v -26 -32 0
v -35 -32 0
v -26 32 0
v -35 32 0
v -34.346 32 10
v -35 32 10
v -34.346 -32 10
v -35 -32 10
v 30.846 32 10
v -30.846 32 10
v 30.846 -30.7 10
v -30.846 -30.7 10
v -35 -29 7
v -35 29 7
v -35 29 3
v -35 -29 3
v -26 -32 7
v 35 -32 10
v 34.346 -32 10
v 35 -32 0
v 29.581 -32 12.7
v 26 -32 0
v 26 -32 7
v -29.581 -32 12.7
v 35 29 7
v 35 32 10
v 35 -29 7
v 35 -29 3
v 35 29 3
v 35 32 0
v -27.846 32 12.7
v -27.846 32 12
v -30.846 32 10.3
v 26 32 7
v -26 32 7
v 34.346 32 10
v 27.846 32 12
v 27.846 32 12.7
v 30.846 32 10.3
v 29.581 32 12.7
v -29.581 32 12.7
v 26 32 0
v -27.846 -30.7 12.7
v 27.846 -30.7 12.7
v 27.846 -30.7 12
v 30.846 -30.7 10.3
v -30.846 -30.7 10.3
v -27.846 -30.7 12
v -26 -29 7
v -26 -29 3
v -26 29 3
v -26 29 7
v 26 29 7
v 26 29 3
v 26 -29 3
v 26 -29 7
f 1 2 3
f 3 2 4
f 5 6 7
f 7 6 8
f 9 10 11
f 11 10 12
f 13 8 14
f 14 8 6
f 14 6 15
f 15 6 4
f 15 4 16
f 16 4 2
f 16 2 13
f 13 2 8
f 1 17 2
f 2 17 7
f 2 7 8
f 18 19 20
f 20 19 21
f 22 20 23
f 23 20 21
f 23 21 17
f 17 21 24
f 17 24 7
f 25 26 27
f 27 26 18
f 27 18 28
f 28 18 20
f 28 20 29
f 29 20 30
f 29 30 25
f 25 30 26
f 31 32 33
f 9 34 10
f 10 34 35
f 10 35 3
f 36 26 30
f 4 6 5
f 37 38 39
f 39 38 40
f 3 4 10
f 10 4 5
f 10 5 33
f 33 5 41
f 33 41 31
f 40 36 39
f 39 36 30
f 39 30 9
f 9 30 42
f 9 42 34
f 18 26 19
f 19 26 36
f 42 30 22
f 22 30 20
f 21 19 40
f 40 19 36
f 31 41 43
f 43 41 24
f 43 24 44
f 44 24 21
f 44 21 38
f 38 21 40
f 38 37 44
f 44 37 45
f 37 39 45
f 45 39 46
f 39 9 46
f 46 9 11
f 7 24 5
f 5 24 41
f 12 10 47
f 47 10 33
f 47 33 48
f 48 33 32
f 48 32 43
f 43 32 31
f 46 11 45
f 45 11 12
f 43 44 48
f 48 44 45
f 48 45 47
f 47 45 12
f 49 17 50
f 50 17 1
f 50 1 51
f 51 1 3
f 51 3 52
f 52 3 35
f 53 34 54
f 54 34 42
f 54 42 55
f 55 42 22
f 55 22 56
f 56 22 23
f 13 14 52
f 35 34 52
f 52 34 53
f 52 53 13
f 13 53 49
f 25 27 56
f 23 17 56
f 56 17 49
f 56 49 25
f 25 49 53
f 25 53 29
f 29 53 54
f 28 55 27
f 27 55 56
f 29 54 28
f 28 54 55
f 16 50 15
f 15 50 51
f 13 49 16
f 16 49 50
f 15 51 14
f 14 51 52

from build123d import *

# Parameters (mm, degrees)
SKETCH1_W           = 70
SKETCH1_H           = 64
BOSS_EXTRUDE1_DEPTH = 10
BOSS_EXTRUDE2_DEPTH = 64
BOSS_EXTRUDE3_DEPTH = 1.3
SKETCH5_W           = 52
SKETCH5_H           = 7
CUT_EXTRUDE1_DEPTH  = 75.042487803
SKETCH6_W           = 4
SKETCH6_H           = 58
CUT_EXTRUDE2_DEPTH  = 79.008268792


with BuildPart() as part:
    # Sketch1 → Boss-Extrude1 (new body)
    with BuildSketch(Plane.XY):
        Rectangle(SKETCH1_W, SKETCH1_H)
    extrude(amount=BOSS_EXTRUDE1_DEPTH)

    # Sketch2 → Boss-Extrude2 (add, through all)
    with BuildSketch(Plane(origin=(0, 32, 0), x_dir=(1, 0, 0), z_dir=(0, 1, 0))):
        Polygon((27.84617358, -12.7), (29.581467698, -12.7), (34.34617358, -10), (30.84617358, -10), (30.84617358, -10.3), (27.84617358, -12), align=None)
    boss_extrude2 = extrude(amount=-BOSS_EXTRUDE2_DEPTH)

    # Mirror1: Boss-Extrude2 across plane
    add(boss_extrude2.mirror(Plane.ZY))

    # Sketch3 → Boss-Extrude3 (add)
    with BuildSketch(Plane.XZ.offset(32)):
        Polygon((-27.84617358, 12), (-27.84617358, 12.7), (27.84617358, 12.7), (27.84617358, 12), (30.84617358, 10.3), (30.84617358, 10), (-30.84617358, 10), (-30.84617358, 10.3), align=None)
    extrude(amount=-BOSS_EXTRUDE3_DEPTH)

    # Sketch5 → Cut-Extrude1 (cut, through all)
    with BuildSketch(Plane(origin=(0, 32, 0), x_dir=(1, 0, 0), z_dir=(0, 1, 0))):
        with Locations((0, -3.5)):
            Rectangle(SKETCH5_W, SKETCH5_H)
    extrude(amount=-CUT_EXTRUDE1_DEPTH, mode=Mode.SUBTRACT)

    # Sketch6 → Cut-Extrude2 (cut, through all)
    with BuildSketch(Plane(origin=(35, 0, 0), x_dir=(0, 0, -1), z_dir=(1, 0, 0))):
        with Locations((-5, 0)):
            Rectangle(SKETCH6_W, SKETCH6_H)
    extrude(amount=-CUT_EXTRUDE2_DEPTH, mode=Mode.SUBTRACT)


solid = part.part
